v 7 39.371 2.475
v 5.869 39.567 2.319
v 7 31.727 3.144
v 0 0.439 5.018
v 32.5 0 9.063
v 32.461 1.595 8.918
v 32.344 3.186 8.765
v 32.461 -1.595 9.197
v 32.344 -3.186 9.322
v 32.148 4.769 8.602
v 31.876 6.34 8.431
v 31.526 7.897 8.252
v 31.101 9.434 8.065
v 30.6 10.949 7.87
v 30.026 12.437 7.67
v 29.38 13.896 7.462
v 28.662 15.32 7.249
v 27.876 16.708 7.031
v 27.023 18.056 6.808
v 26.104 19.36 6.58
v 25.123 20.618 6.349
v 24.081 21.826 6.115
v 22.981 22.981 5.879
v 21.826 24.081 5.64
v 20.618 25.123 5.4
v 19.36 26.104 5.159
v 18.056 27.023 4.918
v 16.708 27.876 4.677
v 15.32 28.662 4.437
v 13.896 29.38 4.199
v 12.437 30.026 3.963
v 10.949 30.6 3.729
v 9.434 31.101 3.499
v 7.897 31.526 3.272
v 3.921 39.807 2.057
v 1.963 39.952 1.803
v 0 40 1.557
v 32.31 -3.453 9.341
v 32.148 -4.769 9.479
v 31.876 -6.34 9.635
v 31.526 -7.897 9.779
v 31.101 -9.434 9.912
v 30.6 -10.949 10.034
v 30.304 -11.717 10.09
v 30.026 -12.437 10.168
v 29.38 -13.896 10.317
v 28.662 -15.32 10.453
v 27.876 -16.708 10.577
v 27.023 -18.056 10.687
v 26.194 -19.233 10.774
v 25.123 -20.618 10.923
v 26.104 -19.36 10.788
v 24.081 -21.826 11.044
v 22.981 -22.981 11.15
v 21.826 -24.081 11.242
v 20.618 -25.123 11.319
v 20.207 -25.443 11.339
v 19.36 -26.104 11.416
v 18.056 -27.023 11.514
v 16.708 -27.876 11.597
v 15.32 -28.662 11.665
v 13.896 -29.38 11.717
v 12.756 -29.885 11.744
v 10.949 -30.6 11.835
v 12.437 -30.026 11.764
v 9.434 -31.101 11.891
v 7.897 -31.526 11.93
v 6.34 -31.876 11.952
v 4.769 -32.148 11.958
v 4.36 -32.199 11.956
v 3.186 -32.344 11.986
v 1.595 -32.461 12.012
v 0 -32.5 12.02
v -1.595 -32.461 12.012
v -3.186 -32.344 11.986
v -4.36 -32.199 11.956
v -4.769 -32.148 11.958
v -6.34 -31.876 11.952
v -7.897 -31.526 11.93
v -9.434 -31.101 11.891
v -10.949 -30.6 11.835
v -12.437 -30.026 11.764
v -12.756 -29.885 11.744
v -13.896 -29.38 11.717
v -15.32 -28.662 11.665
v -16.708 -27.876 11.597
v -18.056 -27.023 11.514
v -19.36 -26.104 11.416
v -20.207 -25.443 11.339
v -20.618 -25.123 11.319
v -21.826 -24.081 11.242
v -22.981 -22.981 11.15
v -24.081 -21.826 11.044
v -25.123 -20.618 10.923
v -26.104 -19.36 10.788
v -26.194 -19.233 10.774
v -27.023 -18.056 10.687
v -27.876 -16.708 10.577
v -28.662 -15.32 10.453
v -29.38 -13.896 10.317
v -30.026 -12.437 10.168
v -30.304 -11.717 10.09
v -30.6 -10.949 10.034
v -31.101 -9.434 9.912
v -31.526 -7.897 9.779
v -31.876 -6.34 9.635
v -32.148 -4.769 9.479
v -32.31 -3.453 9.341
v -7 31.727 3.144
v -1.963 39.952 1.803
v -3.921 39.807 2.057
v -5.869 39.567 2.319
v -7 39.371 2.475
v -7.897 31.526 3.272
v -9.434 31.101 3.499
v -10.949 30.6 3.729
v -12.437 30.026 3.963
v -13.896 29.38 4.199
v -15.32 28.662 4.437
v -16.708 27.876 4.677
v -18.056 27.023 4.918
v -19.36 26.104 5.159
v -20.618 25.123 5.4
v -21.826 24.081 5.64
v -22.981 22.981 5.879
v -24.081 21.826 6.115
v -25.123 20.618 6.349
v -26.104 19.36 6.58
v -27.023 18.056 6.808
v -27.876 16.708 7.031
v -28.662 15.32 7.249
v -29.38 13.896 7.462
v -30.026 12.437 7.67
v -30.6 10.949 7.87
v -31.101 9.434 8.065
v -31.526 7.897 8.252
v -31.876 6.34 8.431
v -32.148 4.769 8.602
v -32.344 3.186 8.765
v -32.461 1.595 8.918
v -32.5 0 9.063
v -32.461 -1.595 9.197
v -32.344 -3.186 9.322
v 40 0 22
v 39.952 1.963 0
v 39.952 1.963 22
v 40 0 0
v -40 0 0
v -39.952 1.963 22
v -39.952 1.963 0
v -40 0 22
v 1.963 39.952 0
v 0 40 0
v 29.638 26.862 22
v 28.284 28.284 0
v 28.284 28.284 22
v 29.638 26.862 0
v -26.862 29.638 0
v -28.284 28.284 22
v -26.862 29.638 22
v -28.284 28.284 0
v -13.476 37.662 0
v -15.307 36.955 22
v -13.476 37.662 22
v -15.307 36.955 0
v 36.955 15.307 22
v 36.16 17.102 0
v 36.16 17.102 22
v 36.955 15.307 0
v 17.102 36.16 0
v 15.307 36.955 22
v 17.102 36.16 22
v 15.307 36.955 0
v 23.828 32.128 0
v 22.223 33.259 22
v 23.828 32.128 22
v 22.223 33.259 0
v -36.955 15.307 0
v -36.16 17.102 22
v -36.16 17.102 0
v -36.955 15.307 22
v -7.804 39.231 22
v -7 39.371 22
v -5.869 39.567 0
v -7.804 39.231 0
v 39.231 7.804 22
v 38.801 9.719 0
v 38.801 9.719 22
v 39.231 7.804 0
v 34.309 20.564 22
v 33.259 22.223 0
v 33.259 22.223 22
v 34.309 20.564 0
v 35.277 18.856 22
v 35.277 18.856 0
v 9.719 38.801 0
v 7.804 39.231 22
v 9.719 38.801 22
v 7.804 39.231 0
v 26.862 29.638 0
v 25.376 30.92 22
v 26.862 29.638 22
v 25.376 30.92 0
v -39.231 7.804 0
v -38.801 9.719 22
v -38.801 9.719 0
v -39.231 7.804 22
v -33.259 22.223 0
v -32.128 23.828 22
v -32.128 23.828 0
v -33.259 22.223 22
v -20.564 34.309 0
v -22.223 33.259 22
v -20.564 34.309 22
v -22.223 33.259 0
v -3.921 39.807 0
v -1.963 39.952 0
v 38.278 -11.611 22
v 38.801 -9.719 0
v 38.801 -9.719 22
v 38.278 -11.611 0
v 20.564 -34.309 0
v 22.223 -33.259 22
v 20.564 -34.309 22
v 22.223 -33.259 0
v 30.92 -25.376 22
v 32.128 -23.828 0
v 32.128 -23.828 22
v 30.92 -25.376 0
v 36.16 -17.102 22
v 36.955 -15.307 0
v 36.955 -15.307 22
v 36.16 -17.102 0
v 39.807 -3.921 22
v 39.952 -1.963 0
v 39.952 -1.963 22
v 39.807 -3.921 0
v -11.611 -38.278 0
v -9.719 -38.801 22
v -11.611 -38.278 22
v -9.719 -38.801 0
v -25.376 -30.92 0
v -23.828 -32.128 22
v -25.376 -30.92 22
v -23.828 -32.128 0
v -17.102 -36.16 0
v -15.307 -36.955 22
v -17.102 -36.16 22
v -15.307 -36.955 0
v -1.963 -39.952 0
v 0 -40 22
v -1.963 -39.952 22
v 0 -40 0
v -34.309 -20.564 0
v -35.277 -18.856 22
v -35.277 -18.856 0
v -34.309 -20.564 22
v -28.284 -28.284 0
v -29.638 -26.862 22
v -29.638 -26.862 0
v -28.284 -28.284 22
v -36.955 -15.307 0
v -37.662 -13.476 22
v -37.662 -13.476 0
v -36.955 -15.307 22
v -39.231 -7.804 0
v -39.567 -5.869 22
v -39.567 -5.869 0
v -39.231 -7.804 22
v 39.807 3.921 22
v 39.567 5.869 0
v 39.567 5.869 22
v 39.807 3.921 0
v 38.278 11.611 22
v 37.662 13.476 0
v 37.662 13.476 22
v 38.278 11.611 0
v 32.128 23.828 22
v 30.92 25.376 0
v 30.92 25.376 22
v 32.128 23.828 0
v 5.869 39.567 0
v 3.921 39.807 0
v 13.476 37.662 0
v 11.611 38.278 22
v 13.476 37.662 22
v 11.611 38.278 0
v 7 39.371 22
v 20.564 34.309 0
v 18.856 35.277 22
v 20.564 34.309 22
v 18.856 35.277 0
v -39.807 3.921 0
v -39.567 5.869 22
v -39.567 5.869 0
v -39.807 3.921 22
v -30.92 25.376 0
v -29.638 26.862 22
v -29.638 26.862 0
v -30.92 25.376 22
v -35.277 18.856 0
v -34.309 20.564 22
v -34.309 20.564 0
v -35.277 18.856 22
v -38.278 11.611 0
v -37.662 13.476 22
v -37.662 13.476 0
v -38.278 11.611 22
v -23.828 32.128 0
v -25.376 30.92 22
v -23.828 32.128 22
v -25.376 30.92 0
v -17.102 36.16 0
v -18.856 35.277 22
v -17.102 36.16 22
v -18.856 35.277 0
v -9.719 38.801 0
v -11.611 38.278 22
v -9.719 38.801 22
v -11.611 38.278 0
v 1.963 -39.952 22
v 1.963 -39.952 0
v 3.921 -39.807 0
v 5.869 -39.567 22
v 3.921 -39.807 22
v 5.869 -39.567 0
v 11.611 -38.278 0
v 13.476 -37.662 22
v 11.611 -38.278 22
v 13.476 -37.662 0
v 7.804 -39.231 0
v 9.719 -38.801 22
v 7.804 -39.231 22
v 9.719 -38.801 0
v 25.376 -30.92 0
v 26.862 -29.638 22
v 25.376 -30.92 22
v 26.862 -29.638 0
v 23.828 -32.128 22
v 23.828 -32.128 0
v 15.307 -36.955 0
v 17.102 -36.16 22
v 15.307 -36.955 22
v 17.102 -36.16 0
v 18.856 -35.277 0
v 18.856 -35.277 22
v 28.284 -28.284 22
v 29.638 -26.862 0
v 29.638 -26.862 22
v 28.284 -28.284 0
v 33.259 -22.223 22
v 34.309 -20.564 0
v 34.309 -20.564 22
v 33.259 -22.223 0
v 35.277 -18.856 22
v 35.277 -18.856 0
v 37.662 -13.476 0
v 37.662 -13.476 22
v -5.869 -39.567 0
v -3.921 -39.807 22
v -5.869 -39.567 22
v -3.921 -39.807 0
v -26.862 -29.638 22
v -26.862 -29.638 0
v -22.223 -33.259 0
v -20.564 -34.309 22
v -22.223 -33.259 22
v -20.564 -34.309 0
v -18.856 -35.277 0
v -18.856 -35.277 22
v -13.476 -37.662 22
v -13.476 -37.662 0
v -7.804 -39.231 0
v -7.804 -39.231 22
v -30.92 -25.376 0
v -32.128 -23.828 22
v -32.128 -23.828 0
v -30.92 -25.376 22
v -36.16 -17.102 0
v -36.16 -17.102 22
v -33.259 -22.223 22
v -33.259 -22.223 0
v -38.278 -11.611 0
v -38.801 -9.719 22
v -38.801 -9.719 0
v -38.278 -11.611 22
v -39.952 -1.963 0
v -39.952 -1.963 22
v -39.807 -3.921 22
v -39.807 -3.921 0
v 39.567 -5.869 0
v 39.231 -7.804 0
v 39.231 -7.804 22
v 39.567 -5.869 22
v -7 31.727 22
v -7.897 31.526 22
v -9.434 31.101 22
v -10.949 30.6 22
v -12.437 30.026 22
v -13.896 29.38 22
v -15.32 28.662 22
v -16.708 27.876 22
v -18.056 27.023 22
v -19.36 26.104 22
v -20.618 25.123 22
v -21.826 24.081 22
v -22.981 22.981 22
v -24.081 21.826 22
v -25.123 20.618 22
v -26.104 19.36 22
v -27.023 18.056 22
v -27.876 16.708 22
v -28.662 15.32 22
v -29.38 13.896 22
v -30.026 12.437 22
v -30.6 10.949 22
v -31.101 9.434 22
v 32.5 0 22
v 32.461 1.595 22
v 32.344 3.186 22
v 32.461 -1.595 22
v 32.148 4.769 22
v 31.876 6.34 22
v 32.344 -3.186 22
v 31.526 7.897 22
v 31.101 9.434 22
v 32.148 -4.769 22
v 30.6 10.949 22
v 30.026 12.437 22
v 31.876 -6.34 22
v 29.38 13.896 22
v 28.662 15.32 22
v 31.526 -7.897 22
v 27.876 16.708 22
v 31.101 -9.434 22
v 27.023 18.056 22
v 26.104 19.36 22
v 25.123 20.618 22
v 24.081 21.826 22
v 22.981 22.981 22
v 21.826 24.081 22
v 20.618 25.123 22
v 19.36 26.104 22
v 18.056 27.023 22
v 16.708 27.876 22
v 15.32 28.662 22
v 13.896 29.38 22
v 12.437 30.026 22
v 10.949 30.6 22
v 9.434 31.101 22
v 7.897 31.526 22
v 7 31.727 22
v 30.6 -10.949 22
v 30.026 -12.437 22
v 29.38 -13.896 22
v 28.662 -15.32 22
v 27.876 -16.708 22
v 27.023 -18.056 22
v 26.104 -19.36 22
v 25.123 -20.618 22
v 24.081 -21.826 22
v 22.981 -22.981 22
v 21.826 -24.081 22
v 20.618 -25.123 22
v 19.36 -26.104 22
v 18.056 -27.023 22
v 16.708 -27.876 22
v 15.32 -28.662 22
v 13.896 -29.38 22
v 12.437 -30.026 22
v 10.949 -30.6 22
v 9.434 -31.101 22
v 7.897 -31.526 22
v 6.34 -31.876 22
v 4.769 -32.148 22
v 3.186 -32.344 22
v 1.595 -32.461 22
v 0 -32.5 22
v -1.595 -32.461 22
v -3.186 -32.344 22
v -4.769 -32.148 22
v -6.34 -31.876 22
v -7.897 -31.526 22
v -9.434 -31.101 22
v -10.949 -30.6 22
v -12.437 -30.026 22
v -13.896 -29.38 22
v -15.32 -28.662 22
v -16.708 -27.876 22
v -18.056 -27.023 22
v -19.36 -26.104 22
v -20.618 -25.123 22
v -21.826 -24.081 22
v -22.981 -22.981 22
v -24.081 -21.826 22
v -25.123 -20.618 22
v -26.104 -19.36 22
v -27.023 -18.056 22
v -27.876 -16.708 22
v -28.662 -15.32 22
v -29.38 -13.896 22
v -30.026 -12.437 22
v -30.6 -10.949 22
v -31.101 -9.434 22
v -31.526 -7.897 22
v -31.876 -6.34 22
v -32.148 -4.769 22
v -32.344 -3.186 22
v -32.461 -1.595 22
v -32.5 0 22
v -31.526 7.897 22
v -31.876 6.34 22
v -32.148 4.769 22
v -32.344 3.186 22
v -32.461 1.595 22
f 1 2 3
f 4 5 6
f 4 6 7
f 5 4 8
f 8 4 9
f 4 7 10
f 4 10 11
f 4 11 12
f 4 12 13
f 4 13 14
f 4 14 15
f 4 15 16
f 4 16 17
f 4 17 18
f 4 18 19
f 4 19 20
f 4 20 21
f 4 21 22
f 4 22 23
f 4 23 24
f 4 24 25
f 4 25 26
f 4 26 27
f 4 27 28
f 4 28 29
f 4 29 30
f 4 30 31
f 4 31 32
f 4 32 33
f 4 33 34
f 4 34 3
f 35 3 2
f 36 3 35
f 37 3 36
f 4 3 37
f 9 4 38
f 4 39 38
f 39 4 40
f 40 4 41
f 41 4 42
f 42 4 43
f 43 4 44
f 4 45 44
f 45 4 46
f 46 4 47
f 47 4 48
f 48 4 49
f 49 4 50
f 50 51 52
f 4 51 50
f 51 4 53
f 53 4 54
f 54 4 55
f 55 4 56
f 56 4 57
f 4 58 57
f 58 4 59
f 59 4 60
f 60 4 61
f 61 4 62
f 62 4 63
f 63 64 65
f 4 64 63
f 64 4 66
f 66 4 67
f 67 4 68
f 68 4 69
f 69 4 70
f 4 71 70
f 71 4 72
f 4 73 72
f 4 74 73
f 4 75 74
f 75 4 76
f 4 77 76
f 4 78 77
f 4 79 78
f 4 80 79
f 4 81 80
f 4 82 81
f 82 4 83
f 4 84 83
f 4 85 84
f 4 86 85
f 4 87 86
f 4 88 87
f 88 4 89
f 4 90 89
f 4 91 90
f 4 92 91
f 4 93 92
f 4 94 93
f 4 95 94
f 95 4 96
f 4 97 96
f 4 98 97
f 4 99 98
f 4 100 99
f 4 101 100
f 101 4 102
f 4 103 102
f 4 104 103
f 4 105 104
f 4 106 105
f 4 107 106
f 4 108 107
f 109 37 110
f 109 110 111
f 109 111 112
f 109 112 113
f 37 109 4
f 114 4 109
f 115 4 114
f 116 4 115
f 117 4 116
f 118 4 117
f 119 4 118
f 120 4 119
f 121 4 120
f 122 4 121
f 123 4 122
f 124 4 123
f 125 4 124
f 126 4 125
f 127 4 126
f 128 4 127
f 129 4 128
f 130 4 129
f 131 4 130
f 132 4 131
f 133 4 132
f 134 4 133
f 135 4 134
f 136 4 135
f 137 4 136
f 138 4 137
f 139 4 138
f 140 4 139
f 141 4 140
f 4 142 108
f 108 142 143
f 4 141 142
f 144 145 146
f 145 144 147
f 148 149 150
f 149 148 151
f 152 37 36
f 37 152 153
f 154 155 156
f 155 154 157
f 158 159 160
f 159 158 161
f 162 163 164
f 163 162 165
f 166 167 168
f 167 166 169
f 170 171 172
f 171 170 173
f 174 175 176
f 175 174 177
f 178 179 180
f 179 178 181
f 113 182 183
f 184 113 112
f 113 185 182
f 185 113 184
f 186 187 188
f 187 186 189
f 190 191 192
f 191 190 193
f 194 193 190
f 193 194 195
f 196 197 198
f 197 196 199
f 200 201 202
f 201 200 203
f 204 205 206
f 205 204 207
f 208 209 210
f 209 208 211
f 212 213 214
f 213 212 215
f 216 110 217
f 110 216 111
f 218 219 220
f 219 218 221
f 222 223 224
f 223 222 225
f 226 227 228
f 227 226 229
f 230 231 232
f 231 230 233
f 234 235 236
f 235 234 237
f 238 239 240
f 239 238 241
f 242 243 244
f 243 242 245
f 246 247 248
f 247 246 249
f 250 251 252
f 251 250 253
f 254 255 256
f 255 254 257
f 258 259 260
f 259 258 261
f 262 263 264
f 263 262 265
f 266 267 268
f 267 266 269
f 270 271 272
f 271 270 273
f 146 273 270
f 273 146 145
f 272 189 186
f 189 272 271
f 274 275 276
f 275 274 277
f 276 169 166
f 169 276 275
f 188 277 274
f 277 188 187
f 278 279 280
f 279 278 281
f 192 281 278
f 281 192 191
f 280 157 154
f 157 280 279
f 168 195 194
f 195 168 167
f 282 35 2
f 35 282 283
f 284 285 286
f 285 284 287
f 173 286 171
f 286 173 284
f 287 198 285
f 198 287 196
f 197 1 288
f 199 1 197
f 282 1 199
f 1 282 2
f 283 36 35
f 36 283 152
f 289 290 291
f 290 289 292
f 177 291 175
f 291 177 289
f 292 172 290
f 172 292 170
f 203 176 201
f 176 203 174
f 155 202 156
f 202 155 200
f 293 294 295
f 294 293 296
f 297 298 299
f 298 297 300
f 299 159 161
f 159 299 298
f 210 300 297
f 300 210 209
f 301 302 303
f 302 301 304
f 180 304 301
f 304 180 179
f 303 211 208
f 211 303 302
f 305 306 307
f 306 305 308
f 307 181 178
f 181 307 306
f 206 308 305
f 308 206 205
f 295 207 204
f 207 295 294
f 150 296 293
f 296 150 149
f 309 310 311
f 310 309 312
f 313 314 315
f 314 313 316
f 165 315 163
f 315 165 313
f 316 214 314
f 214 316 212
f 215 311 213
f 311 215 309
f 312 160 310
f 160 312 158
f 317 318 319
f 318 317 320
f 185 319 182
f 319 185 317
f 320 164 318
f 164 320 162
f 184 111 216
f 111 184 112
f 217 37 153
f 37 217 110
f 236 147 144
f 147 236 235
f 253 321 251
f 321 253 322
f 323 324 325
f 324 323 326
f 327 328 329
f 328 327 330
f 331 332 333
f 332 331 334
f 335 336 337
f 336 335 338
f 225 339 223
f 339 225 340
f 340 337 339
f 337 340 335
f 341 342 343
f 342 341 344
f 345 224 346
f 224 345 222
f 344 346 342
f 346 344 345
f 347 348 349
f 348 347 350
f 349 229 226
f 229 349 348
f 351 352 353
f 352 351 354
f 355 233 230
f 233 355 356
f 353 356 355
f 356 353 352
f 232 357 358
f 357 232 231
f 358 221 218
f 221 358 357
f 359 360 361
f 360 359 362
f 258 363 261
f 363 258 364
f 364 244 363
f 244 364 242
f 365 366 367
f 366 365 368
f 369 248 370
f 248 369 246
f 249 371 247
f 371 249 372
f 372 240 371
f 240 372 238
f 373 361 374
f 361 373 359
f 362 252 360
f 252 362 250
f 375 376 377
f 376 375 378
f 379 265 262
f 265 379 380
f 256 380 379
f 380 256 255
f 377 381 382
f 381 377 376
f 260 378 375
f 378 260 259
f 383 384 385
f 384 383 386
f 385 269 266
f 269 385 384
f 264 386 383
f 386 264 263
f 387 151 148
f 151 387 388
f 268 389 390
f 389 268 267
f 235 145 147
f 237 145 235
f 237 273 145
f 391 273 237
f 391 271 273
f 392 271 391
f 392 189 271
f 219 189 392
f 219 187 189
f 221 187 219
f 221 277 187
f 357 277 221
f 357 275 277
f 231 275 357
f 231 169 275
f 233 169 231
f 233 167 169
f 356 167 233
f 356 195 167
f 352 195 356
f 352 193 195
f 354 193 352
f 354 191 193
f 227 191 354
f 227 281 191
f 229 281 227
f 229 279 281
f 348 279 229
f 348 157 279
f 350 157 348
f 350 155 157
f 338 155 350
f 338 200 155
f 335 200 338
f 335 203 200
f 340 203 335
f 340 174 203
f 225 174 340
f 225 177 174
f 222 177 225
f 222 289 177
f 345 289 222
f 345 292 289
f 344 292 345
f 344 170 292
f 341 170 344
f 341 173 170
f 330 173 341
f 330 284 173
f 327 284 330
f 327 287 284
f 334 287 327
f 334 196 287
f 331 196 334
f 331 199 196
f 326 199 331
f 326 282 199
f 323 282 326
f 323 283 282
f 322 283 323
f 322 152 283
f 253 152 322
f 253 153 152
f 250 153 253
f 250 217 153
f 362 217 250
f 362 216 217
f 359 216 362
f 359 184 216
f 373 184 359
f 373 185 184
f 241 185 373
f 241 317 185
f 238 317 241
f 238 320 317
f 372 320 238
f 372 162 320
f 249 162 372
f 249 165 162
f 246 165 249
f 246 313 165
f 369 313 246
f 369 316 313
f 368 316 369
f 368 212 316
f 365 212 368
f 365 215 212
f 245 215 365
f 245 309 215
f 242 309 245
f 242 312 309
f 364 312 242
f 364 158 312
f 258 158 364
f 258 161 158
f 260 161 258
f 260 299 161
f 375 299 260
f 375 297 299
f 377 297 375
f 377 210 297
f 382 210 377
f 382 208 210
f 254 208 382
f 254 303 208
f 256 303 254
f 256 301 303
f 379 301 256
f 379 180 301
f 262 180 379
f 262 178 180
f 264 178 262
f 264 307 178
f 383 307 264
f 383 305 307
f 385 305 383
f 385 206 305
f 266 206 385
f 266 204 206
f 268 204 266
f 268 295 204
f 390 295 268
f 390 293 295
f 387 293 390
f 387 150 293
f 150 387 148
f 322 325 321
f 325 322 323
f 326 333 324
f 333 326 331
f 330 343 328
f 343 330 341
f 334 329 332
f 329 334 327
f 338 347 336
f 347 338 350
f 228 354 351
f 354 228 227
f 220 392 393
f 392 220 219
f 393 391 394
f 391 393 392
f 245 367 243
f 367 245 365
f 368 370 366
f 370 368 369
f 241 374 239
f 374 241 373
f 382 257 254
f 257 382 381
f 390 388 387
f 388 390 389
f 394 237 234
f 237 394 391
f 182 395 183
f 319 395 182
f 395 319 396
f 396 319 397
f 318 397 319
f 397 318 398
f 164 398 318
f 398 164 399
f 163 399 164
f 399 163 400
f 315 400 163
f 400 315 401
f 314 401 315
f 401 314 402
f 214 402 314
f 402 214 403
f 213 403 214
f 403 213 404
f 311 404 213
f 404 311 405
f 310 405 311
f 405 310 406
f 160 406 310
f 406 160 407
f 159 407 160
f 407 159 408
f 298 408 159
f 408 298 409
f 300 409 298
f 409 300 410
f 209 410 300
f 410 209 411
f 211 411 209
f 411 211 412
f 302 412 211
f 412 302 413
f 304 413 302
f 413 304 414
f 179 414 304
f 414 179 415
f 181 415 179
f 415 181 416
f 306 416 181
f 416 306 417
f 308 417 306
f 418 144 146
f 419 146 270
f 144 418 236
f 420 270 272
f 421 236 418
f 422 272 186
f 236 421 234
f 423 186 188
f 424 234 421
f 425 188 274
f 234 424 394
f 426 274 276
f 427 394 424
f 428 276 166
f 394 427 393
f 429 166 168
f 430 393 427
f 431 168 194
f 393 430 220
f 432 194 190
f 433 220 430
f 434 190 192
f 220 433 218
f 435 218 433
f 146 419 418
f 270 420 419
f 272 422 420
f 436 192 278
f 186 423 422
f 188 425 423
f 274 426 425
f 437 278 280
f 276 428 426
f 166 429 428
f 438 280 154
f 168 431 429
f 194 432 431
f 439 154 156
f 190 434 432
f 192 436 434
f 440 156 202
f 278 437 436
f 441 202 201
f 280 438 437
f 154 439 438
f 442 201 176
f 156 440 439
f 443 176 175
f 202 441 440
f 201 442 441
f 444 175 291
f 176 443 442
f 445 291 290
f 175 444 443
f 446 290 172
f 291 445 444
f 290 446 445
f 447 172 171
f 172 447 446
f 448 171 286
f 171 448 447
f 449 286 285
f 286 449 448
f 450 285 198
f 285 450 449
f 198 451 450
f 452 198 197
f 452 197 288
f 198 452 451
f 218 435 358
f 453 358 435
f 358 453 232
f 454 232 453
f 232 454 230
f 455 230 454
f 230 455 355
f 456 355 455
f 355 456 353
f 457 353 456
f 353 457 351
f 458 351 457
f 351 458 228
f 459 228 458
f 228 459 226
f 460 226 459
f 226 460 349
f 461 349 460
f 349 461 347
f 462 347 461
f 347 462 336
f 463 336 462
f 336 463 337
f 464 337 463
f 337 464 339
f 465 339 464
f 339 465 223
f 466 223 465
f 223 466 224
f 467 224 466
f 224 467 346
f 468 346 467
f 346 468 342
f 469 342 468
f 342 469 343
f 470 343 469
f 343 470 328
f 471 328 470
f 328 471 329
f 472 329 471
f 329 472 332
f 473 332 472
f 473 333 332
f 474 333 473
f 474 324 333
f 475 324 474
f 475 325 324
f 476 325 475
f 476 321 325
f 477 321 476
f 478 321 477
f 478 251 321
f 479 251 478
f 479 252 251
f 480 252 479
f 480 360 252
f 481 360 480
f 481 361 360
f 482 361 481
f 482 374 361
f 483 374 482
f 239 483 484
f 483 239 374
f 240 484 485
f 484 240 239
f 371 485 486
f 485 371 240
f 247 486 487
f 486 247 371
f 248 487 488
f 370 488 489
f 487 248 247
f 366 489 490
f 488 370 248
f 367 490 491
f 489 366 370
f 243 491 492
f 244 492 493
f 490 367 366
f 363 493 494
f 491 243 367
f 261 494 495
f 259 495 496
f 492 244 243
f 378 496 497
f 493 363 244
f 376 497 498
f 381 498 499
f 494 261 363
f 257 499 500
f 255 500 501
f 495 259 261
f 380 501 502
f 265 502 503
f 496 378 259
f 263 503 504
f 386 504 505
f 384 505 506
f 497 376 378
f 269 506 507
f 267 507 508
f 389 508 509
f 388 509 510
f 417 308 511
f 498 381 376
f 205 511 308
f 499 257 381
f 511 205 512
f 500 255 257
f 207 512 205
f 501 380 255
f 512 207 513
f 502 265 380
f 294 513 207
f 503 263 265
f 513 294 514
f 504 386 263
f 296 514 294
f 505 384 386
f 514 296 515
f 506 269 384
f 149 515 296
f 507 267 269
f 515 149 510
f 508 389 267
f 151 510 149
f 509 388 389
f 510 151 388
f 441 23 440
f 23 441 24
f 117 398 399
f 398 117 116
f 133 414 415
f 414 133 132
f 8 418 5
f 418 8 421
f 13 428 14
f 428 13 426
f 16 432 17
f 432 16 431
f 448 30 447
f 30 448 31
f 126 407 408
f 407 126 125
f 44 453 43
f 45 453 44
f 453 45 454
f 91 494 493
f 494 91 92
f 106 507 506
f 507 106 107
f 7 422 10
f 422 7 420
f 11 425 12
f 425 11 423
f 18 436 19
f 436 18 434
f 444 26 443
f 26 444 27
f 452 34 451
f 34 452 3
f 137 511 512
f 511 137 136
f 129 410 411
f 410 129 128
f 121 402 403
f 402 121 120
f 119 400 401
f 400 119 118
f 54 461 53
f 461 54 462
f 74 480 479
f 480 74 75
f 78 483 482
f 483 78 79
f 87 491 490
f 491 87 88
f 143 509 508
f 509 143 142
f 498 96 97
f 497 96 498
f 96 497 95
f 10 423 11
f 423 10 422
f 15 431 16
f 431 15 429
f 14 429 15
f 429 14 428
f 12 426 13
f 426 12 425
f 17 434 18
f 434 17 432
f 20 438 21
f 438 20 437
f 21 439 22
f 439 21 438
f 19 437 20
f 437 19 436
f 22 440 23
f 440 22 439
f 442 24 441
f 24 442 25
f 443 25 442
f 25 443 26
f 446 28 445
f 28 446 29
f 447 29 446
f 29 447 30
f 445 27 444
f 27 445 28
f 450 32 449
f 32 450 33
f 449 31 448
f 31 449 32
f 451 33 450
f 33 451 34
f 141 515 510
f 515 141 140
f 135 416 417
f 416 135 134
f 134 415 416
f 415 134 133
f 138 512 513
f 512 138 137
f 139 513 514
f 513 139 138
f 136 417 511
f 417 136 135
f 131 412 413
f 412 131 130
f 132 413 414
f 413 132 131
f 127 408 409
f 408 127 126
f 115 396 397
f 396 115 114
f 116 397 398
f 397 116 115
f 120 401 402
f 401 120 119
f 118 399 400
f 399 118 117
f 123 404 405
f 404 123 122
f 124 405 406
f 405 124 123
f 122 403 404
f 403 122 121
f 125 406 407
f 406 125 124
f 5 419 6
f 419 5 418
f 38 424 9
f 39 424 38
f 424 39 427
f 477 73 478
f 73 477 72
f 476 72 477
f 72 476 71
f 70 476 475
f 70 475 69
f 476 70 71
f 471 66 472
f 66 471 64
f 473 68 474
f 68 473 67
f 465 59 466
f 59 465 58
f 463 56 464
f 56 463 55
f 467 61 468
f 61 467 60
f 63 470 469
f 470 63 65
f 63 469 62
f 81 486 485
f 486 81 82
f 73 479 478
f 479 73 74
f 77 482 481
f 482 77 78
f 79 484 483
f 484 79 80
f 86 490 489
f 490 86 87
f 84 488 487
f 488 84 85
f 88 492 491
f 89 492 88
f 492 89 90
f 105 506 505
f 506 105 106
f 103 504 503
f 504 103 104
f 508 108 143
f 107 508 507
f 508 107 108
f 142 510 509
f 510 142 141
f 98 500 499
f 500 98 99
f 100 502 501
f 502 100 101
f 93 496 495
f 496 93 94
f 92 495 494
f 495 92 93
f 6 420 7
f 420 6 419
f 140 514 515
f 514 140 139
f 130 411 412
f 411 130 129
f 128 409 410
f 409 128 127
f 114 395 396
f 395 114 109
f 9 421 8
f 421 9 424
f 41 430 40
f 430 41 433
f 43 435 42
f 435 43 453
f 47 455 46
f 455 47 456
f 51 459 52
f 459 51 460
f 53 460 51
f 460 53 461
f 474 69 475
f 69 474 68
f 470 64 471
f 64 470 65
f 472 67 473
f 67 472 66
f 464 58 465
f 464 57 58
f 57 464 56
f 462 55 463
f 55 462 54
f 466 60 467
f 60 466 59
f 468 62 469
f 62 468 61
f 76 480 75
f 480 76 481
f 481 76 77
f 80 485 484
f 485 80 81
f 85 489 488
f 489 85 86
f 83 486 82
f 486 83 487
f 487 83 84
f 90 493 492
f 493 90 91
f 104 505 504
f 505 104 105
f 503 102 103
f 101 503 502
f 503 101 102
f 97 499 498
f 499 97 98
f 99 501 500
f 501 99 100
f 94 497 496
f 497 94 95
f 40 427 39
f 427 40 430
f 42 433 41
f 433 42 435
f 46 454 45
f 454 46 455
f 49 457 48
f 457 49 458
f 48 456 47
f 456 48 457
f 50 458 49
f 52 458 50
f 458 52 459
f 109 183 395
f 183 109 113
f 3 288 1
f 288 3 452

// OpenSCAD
$fn = 128;

height=22;

module outer() {
    cylinder(r=40, h=height);
}

module drainage_slope() {
    rotate([0,-7,0])
        translate([-50,-50,-10])
            cube([100,100,15]);
}

module drainage() {
    rotate([-5,0,0]) {
        // round towards center
        for(r = [0 : 15 : 180])
            rotate([0,0,-r])
                drainage_slope();
    }
}

module ring() {
    difference() {
        //cylinder(r=105, h=20, center=true);
        outer();

        translate([0,0,-1])
            cylinder(r=65/2, h=height+2);

    translate([-7,30,-0.1])
        cube([14, 50, height+1]);
    }
}

intersection() {
    outer();
    drainage();
}

ring();
